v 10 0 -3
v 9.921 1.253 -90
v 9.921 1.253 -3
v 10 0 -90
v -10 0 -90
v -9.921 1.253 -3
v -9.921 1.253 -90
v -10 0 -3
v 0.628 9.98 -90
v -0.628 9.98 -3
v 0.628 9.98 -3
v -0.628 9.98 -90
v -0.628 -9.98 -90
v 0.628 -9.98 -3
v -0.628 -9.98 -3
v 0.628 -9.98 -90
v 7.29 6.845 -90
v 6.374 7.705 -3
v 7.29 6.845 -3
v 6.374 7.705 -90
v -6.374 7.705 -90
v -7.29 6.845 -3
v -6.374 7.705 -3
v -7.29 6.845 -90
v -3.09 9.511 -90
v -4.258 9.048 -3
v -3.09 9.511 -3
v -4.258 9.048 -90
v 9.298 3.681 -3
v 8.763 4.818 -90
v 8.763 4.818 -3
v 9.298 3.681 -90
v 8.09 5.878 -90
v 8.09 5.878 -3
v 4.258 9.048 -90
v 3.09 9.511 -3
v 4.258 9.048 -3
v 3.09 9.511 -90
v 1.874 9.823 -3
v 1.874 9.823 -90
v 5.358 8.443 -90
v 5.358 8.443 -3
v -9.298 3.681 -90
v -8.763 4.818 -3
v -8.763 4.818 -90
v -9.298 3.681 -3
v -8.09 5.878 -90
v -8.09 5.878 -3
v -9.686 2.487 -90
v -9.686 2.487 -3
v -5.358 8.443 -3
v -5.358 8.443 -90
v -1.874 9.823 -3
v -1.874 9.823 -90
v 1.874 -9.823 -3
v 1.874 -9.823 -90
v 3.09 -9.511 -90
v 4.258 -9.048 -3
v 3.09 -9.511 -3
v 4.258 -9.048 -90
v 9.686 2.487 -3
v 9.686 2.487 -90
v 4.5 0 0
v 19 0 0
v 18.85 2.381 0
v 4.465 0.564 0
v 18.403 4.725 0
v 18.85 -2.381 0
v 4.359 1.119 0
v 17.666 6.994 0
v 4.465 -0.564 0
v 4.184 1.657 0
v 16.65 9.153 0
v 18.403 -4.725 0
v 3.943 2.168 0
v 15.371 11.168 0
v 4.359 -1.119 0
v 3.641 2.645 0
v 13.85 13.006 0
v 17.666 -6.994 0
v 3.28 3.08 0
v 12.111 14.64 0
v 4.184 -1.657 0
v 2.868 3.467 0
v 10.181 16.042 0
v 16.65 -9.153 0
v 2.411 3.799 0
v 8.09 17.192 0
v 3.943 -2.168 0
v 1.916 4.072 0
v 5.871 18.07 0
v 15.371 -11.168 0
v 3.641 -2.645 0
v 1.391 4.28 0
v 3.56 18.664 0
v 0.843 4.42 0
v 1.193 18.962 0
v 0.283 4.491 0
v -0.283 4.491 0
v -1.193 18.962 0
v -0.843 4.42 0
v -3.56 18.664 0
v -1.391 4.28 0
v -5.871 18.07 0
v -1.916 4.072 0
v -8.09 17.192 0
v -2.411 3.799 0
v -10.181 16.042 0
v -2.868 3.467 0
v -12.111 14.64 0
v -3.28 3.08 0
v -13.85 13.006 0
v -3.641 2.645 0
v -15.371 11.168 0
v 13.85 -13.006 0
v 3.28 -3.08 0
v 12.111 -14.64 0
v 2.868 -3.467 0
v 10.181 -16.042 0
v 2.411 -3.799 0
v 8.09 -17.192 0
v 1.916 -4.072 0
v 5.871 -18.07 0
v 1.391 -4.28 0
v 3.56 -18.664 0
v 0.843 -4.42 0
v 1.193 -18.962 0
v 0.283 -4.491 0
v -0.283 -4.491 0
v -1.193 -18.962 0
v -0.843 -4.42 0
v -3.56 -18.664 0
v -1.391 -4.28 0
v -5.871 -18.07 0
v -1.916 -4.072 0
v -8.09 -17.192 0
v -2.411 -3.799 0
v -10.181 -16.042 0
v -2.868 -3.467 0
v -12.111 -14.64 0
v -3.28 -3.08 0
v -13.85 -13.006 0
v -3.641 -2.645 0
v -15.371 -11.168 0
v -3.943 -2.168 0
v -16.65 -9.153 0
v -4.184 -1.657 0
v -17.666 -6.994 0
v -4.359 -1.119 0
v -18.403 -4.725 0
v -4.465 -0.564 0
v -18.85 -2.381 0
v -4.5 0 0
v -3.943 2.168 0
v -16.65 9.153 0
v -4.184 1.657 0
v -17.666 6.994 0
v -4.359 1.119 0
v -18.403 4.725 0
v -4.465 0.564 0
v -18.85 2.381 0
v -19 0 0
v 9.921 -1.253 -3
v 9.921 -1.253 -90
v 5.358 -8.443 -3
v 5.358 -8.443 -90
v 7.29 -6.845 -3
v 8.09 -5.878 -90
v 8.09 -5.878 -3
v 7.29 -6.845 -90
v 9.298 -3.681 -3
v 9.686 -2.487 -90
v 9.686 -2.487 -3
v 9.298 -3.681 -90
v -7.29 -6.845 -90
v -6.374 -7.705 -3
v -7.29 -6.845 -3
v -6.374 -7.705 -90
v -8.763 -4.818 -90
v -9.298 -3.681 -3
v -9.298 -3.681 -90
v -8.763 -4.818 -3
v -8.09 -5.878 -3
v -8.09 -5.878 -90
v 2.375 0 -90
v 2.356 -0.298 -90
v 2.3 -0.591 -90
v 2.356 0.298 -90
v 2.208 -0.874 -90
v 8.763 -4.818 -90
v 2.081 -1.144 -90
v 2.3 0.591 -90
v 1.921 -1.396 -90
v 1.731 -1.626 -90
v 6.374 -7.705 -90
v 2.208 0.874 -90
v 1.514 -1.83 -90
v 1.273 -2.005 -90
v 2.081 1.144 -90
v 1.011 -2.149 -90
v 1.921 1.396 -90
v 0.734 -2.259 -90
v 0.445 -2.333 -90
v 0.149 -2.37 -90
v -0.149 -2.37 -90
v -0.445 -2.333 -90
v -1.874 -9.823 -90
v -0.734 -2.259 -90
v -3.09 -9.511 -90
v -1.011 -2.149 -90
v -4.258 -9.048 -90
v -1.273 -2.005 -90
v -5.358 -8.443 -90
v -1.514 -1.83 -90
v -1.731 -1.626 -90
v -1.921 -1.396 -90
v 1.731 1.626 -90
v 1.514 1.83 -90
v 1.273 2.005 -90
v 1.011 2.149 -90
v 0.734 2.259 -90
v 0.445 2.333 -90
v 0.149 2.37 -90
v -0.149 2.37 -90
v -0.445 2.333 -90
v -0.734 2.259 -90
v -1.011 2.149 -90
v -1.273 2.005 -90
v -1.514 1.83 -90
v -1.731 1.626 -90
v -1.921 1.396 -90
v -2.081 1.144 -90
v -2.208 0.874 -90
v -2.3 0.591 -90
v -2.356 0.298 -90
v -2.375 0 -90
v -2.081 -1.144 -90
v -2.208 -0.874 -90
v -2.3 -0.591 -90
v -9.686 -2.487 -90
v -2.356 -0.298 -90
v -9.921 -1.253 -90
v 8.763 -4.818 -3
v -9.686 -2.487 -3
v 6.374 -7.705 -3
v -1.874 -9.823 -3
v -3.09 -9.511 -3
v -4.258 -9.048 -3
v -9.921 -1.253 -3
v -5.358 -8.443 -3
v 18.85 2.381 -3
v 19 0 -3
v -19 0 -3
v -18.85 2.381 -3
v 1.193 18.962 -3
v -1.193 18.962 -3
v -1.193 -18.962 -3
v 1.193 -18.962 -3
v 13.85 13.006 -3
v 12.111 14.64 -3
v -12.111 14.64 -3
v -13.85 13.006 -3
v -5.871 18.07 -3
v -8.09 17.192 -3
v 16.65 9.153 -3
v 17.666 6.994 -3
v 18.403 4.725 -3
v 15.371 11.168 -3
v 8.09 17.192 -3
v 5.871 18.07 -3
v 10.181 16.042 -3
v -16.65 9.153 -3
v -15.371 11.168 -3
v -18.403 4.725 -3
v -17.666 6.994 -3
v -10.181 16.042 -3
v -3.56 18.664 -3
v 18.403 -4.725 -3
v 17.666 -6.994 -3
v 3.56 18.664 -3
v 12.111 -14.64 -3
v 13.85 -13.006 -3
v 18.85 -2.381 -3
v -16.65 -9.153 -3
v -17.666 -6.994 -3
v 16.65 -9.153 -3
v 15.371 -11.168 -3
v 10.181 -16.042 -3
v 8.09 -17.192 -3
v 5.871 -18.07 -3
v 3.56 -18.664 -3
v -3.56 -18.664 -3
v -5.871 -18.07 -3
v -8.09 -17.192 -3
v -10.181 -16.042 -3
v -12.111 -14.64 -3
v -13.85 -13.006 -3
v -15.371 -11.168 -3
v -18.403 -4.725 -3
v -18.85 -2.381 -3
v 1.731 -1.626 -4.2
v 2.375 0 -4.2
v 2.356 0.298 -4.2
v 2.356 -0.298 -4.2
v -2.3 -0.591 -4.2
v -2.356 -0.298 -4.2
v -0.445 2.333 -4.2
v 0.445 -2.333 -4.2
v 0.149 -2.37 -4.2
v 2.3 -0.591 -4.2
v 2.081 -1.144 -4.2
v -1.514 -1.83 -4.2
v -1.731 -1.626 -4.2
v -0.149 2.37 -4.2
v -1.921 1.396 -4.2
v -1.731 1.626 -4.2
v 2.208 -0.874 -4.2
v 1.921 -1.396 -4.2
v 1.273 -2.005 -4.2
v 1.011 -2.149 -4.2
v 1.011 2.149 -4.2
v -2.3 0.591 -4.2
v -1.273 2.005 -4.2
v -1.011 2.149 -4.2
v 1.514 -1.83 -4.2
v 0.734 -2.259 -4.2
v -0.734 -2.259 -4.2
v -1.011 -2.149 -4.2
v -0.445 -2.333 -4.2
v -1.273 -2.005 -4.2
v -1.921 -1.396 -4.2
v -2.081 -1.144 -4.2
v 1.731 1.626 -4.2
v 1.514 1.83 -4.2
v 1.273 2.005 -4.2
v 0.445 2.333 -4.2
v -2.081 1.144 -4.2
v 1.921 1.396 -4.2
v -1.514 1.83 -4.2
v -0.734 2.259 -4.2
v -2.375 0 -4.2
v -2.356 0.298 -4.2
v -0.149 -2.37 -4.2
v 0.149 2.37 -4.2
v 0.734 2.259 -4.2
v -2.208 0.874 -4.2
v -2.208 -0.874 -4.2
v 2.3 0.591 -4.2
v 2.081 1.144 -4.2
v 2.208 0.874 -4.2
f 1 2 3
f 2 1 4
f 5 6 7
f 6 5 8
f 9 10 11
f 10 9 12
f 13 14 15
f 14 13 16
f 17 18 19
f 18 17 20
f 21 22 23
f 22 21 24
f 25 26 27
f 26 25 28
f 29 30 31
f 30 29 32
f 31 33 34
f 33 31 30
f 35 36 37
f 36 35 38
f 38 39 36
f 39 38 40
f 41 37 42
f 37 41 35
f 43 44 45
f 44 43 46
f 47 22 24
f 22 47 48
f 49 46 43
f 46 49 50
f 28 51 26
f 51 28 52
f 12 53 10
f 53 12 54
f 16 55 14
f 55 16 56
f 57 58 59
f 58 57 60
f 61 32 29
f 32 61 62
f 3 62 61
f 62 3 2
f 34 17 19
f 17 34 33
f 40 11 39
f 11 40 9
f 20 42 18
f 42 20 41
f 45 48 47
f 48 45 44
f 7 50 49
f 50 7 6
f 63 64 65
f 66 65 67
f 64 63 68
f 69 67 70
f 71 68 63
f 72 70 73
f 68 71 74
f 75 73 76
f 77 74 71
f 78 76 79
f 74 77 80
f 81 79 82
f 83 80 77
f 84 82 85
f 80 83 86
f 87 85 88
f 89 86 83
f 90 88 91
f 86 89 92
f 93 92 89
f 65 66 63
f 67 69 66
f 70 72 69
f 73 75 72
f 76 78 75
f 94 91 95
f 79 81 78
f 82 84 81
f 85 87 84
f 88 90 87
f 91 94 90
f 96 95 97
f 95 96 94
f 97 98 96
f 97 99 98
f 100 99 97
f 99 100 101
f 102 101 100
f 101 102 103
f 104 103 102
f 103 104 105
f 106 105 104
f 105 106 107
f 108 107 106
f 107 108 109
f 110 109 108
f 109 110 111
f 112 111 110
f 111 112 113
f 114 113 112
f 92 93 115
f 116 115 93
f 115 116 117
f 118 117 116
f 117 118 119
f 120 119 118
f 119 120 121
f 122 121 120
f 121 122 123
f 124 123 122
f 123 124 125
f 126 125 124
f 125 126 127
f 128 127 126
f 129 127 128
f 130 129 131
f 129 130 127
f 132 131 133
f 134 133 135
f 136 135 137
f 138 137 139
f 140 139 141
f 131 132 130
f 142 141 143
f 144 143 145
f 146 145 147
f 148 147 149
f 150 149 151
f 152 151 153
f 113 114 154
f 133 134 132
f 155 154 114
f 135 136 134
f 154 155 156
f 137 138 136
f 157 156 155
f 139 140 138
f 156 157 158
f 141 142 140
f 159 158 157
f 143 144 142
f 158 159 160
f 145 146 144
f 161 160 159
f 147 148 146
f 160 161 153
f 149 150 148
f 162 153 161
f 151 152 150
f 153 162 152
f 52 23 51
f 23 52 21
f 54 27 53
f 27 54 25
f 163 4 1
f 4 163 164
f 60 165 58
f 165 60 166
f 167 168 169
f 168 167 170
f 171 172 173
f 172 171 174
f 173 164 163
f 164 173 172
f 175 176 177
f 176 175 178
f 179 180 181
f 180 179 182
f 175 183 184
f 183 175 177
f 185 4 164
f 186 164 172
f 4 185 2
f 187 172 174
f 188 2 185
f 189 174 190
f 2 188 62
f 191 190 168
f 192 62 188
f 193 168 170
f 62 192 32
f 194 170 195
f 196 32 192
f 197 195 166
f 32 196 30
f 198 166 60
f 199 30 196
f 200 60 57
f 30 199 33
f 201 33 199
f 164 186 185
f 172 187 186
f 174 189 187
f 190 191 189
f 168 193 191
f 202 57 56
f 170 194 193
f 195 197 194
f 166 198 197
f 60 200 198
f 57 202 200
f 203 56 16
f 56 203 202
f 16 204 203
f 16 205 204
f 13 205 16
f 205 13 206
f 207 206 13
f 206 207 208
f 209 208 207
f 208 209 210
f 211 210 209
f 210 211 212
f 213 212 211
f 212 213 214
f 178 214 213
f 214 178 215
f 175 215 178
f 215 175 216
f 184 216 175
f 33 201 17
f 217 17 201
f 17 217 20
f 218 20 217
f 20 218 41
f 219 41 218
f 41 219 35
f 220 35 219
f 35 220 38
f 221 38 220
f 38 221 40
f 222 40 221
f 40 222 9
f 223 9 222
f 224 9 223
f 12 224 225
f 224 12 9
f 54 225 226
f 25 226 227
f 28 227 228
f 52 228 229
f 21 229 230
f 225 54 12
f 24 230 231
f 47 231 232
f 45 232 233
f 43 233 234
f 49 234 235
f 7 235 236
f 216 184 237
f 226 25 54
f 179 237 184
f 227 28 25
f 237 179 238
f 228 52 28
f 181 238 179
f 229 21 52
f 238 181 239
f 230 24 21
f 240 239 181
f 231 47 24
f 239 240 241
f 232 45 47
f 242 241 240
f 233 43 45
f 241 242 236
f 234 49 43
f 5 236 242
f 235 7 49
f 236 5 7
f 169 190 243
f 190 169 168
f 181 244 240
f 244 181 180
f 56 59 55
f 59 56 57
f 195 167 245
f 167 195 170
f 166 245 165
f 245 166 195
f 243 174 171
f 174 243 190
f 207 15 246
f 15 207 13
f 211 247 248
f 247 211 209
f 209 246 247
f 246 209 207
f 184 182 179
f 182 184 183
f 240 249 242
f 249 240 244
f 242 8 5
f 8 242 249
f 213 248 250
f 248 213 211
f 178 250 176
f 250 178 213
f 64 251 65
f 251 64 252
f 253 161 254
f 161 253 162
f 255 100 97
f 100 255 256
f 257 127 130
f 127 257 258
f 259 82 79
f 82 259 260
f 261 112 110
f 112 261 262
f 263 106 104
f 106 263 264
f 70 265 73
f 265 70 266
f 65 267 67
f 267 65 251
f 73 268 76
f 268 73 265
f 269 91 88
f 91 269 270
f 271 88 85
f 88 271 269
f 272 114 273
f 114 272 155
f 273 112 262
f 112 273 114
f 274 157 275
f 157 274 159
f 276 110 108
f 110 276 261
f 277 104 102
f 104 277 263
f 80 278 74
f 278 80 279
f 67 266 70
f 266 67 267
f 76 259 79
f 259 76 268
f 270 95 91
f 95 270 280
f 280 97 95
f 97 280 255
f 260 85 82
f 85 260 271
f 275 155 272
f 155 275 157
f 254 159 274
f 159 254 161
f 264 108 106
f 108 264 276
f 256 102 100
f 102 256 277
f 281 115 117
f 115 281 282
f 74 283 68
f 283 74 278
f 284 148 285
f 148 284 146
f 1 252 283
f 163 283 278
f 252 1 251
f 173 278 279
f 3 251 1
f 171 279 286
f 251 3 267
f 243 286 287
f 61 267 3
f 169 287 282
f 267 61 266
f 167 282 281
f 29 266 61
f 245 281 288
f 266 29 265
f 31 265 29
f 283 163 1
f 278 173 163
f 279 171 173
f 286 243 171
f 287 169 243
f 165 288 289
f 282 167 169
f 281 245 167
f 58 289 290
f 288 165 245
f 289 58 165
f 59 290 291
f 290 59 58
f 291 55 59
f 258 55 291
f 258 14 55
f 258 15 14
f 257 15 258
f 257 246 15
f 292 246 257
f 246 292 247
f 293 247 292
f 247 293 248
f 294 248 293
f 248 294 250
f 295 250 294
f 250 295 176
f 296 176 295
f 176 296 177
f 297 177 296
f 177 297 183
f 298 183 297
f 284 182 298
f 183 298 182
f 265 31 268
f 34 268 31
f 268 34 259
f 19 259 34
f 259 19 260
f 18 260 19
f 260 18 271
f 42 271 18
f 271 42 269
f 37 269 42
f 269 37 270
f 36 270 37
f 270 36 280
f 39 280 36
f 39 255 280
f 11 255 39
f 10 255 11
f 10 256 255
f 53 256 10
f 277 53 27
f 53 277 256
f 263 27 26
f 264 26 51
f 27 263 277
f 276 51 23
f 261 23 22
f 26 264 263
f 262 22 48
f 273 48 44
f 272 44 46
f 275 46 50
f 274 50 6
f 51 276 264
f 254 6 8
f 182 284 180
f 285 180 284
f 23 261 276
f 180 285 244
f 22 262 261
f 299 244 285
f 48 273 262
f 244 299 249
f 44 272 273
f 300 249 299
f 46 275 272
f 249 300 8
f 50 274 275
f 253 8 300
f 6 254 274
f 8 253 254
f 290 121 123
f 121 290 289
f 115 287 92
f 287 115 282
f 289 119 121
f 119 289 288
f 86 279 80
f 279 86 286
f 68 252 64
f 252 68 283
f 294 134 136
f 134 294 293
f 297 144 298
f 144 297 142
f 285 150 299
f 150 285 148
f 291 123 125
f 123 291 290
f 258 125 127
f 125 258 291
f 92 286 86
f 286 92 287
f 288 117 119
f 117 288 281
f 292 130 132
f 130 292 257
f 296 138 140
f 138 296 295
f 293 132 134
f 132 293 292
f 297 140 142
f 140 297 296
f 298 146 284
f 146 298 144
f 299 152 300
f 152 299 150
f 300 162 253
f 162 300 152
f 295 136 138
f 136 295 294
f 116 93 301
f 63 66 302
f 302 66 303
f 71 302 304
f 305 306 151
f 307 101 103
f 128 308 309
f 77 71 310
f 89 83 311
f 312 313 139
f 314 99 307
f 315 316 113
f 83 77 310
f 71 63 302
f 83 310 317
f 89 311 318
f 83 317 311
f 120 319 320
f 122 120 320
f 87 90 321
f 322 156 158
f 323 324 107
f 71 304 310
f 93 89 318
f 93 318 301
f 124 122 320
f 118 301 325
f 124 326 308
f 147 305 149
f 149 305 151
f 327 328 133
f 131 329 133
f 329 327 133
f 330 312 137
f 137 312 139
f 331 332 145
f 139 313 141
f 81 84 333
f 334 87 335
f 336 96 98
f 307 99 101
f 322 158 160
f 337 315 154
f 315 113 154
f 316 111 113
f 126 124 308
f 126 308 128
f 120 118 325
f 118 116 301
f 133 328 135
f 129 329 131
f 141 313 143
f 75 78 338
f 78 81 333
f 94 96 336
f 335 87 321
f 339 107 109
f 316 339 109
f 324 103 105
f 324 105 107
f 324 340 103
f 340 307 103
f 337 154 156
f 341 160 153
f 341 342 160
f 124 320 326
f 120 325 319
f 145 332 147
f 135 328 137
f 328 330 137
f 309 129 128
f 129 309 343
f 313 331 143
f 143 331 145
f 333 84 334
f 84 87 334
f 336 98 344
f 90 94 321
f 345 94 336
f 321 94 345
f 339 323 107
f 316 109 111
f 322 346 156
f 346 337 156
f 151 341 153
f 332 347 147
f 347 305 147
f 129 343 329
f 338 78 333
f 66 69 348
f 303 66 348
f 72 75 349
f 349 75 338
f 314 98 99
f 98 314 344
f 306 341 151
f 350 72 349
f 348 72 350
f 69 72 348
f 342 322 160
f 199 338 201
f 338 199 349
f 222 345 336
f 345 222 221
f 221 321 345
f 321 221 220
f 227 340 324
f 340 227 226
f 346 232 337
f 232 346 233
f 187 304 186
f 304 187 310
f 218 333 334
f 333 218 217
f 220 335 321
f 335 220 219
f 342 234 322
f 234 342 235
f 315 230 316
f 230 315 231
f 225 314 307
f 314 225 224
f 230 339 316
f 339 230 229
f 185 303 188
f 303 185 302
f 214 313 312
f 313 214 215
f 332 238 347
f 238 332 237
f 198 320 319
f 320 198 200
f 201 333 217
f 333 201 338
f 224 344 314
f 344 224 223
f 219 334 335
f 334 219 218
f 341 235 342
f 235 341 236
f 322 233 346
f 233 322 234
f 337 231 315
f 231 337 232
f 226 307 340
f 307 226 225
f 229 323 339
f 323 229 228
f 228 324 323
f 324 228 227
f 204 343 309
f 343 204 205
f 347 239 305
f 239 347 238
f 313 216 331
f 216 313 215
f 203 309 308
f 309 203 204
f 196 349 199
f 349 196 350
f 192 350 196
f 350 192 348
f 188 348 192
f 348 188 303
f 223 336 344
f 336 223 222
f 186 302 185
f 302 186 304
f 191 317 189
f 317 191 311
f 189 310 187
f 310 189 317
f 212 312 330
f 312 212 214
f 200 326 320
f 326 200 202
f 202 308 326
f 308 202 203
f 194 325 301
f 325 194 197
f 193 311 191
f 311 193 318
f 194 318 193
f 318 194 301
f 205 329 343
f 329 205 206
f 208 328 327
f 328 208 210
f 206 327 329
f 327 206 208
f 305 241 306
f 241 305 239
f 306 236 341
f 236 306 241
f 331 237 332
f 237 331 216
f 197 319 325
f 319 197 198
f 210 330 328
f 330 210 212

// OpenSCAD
$fn = 50;


difference() {
	union() {
		translate(v = [0, 0, -90.0000000000]) {
			cylinder(h = 90, r = 10.0000000000);
		}
		translate(v = [0, 0, -3.0000000000]) {
			cylinder(h = 3, r = 19.0000000000);
		}
	}
	union() {
		translate(v = [0, 0, 0]) {
			rotate(a = [0, 0, 0]) {
				difference() {
					union() {
						#translate(v = [0, 0, -90.0000000000]) {
							cylinder(h = 90, r = 2.2500000000);
						}
						#translate(v = [0, 0, -4.2000000000]) {
							cylinder(h = 4.2000000000, r = 10.0000000000, r1 = 2.3750000000, r2 = 4.5000000000);
						}
						#translate(v = [0, 0, -90.0000000000]) {
							cylinder(h = 90, r = 2.3750000000);
						}
						#translate(v = [0, 0, -90.0000000000]) {
							cylinder(h = 90, r = 2.2500000000);
						}
					}
					union();
				}
			}
		}
	}
}
